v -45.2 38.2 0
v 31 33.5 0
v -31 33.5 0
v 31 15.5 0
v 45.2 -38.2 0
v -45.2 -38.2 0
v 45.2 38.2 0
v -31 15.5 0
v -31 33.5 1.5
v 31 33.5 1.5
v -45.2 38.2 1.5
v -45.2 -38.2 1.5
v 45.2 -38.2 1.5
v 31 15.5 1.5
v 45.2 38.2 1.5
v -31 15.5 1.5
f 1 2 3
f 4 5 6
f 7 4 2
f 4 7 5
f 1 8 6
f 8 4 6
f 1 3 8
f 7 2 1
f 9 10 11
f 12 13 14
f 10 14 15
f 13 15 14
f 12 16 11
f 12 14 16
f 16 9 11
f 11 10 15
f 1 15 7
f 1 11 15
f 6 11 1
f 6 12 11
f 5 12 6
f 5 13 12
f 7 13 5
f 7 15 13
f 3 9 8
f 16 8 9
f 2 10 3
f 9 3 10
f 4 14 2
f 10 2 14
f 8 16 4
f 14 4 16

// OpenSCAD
// Speakerdeck case: the pad behind the Inky wHAT.
// It prints flat.
// Open this file to see the part in its position for the print bed.

include <common.scad>

// Pad behind the Inky wHAT. See "pad_squeeze" for the material.
module pad() {
  linear_extrude(inky_pad + pad_squeeze) difference() {
    inky_rect(inky_board, -0.3);
    inky_rect(inky_header, 1, inky_header_off);
  }
}

translate([-inky_c[0], -inky_c[1], 0]) pad();
